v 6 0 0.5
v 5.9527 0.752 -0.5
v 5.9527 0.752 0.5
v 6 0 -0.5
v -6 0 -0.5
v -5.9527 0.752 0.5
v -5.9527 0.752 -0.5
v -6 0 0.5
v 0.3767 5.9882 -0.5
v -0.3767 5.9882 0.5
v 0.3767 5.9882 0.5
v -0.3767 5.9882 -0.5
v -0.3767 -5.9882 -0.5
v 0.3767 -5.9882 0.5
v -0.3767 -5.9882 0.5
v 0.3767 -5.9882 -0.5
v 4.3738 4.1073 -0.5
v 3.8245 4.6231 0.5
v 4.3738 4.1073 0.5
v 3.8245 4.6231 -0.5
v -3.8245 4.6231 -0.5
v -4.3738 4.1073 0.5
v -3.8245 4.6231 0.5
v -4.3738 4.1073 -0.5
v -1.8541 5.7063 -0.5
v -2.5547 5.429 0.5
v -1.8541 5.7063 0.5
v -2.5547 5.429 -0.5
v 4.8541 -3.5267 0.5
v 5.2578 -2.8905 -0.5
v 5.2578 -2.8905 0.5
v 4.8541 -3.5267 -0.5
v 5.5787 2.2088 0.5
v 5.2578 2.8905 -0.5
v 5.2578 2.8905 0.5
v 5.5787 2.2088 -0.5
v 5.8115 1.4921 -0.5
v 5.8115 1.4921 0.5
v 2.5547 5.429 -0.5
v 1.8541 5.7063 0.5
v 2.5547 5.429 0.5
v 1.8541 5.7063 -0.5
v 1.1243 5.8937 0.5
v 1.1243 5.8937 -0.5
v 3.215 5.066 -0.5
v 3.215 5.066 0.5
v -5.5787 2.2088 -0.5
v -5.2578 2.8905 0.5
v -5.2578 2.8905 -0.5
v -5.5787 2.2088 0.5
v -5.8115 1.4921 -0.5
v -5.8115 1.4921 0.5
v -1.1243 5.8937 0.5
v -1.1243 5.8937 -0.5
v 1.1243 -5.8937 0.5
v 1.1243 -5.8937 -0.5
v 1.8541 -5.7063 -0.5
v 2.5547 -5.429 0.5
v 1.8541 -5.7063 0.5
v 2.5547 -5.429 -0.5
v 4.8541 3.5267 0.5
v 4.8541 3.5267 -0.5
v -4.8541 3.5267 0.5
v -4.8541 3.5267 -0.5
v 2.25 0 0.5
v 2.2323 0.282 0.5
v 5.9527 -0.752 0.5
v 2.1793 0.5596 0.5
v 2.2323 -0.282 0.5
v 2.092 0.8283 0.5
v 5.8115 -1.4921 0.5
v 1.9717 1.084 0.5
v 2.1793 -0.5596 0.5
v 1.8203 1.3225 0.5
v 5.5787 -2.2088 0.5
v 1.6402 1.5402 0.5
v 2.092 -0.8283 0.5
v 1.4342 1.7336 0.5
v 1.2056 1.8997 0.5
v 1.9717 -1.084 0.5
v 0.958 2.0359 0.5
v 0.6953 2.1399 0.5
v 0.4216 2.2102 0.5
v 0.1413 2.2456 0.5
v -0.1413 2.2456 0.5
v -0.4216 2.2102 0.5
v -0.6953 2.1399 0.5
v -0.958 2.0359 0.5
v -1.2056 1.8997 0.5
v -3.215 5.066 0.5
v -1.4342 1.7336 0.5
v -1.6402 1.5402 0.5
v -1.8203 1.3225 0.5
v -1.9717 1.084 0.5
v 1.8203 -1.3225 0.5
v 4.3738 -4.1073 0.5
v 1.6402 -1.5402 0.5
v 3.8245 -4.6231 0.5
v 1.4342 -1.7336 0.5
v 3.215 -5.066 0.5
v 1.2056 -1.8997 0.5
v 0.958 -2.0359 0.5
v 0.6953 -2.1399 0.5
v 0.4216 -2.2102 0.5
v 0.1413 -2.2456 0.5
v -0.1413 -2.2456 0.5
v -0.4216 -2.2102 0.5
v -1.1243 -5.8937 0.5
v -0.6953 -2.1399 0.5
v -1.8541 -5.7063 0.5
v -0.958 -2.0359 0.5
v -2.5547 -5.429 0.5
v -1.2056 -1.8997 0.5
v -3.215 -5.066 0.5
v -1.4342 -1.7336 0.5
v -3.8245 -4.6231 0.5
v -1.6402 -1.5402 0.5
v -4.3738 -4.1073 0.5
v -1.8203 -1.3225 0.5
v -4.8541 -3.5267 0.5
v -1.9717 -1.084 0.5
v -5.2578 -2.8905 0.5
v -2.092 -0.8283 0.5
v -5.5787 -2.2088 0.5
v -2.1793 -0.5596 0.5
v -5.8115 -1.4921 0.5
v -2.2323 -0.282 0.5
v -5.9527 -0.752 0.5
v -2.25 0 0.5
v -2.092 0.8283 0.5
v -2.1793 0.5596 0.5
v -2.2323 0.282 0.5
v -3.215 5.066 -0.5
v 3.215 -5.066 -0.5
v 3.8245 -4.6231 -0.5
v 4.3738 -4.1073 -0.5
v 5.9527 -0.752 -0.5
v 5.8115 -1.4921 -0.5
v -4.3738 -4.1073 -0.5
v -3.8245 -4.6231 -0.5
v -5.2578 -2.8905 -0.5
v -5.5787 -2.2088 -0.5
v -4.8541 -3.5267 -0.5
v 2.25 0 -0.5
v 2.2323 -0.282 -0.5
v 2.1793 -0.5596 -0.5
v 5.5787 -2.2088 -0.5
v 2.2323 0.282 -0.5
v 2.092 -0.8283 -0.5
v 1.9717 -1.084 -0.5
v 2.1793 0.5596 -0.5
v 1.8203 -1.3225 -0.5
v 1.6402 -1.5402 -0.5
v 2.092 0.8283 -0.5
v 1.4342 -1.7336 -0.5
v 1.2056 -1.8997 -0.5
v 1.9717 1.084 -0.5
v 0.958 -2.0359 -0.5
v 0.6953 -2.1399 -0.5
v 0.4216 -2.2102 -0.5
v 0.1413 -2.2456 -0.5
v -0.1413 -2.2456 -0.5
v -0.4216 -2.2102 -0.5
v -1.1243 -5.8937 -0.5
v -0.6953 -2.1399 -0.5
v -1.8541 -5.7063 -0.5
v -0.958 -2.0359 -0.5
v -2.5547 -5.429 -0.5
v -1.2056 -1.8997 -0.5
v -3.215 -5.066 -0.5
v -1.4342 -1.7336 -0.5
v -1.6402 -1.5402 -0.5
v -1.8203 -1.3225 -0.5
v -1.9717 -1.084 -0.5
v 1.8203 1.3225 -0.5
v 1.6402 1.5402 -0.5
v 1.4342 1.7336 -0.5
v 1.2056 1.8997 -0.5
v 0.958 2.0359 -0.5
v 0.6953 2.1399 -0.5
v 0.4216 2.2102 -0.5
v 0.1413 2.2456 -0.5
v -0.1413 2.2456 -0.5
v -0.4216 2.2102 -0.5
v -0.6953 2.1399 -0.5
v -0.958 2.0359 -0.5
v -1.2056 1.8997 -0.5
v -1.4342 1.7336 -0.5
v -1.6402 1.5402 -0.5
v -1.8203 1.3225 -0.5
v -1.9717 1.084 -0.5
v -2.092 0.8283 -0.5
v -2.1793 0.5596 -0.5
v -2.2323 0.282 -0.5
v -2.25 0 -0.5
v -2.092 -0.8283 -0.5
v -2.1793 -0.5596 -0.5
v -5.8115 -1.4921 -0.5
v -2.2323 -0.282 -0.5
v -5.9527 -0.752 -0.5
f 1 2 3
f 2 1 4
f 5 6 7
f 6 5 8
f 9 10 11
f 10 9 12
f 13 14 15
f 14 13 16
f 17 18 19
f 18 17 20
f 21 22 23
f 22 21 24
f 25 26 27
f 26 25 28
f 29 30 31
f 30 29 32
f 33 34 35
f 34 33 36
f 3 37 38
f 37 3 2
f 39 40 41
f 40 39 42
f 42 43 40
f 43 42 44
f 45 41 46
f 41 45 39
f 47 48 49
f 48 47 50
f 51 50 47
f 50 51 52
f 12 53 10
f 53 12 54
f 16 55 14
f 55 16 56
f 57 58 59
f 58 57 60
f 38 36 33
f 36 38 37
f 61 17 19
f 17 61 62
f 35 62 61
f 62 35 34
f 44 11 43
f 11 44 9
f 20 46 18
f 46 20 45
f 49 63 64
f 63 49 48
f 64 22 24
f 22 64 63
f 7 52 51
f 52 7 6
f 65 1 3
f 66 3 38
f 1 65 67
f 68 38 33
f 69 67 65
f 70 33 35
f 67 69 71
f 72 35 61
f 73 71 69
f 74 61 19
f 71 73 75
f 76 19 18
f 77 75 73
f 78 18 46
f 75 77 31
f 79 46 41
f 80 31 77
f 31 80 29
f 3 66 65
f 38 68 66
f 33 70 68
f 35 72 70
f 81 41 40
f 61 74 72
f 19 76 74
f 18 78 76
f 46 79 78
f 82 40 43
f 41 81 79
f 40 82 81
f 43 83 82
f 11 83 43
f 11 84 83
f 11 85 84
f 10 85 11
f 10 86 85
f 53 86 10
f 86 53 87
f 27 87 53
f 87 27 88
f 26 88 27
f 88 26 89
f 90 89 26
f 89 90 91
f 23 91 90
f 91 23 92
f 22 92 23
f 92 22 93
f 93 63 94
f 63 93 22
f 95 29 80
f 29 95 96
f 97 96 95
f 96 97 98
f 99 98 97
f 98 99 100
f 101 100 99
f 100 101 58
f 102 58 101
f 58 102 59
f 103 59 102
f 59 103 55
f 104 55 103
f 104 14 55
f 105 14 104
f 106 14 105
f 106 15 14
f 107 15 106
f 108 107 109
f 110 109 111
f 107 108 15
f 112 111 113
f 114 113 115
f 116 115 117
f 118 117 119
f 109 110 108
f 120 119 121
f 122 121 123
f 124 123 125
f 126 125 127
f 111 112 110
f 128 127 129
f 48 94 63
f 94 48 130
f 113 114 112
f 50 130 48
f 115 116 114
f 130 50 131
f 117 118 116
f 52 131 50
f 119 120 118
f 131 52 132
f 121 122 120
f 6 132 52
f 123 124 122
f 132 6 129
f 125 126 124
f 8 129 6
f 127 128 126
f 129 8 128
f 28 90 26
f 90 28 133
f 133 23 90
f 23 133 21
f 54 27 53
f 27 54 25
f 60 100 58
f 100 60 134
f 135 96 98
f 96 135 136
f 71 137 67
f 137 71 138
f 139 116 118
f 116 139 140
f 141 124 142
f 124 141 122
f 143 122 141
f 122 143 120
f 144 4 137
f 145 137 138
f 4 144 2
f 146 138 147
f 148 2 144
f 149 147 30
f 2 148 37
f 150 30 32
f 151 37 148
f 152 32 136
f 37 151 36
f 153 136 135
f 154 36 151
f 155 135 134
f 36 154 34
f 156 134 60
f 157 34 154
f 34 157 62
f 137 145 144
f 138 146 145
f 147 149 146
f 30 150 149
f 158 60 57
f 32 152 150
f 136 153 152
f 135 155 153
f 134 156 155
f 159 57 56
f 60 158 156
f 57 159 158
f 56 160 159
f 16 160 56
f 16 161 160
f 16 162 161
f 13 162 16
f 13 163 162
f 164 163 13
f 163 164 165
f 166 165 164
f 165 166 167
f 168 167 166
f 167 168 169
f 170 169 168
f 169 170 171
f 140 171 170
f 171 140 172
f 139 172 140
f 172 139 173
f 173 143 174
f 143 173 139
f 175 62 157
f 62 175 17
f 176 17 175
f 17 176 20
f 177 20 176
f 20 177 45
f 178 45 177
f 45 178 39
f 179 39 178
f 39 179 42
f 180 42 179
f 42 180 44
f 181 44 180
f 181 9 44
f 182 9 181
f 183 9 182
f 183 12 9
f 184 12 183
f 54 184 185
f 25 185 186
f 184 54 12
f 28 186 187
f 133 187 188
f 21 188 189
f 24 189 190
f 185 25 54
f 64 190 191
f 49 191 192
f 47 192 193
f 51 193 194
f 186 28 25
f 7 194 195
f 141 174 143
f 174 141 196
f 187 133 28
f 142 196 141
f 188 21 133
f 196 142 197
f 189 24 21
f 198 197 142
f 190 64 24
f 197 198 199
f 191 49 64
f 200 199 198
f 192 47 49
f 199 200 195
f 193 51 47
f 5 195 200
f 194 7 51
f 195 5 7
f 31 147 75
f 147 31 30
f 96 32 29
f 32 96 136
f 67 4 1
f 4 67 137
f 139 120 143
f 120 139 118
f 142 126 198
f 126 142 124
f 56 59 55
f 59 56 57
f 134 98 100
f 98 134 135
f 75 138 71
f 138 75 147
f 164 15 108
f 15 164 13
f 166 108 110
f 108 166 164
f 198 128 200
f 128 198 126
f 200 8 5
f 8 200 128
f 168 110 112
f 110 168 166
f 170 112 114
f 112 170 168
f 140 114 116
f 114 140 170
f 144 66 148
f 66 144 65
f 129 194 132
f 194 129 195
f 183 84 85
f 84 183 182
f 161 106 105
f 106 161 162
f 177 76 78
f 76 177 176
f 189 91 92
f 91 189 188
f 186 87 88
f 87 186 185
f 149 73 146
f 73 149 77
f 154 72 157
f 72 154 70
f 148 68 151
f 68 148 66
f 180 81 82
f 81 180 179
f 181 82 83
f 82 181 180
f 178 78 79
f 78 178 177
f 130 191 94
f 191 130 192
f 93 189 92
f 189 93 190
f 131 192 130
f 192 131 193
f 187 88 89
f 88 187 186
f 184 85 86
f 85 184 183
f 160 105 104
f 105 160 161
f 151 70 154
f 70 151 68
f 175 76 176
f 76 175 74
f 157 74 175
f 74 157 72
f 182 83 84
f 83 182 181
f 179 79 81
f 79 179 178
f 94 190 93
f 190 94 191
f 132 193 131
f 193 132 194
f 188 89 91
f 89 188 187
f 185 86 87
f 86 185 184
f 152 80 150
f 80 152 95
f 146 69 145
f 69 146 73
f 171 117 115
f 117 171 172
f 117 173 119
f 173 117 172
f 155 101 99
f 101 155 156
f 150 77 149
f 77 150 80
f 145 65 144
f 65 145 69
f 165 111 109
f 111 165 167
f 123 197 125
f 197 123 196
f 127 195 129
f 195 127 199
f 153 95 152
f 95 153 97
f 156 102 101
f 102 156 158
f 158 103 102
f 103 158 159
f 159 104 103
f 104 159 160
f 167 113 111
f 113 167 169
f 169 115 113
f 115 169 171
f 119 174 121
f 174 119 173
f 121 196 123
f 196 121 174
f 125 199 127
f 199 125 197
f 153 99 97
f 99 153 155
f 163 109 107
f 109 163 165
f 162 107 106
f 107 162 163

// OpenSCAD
$fn = 50;


difference() {
	union() {
		translate(v = [0, 0, -0.5000000000]) {
			cylinder(h = 1, r = 6.0000000000);
		}
	}
	union() {
		translate(v = [0, 0, -100.0000000000]) {
			cylinder(h = 200, r = 2.2500000000);
		}
	}
}
